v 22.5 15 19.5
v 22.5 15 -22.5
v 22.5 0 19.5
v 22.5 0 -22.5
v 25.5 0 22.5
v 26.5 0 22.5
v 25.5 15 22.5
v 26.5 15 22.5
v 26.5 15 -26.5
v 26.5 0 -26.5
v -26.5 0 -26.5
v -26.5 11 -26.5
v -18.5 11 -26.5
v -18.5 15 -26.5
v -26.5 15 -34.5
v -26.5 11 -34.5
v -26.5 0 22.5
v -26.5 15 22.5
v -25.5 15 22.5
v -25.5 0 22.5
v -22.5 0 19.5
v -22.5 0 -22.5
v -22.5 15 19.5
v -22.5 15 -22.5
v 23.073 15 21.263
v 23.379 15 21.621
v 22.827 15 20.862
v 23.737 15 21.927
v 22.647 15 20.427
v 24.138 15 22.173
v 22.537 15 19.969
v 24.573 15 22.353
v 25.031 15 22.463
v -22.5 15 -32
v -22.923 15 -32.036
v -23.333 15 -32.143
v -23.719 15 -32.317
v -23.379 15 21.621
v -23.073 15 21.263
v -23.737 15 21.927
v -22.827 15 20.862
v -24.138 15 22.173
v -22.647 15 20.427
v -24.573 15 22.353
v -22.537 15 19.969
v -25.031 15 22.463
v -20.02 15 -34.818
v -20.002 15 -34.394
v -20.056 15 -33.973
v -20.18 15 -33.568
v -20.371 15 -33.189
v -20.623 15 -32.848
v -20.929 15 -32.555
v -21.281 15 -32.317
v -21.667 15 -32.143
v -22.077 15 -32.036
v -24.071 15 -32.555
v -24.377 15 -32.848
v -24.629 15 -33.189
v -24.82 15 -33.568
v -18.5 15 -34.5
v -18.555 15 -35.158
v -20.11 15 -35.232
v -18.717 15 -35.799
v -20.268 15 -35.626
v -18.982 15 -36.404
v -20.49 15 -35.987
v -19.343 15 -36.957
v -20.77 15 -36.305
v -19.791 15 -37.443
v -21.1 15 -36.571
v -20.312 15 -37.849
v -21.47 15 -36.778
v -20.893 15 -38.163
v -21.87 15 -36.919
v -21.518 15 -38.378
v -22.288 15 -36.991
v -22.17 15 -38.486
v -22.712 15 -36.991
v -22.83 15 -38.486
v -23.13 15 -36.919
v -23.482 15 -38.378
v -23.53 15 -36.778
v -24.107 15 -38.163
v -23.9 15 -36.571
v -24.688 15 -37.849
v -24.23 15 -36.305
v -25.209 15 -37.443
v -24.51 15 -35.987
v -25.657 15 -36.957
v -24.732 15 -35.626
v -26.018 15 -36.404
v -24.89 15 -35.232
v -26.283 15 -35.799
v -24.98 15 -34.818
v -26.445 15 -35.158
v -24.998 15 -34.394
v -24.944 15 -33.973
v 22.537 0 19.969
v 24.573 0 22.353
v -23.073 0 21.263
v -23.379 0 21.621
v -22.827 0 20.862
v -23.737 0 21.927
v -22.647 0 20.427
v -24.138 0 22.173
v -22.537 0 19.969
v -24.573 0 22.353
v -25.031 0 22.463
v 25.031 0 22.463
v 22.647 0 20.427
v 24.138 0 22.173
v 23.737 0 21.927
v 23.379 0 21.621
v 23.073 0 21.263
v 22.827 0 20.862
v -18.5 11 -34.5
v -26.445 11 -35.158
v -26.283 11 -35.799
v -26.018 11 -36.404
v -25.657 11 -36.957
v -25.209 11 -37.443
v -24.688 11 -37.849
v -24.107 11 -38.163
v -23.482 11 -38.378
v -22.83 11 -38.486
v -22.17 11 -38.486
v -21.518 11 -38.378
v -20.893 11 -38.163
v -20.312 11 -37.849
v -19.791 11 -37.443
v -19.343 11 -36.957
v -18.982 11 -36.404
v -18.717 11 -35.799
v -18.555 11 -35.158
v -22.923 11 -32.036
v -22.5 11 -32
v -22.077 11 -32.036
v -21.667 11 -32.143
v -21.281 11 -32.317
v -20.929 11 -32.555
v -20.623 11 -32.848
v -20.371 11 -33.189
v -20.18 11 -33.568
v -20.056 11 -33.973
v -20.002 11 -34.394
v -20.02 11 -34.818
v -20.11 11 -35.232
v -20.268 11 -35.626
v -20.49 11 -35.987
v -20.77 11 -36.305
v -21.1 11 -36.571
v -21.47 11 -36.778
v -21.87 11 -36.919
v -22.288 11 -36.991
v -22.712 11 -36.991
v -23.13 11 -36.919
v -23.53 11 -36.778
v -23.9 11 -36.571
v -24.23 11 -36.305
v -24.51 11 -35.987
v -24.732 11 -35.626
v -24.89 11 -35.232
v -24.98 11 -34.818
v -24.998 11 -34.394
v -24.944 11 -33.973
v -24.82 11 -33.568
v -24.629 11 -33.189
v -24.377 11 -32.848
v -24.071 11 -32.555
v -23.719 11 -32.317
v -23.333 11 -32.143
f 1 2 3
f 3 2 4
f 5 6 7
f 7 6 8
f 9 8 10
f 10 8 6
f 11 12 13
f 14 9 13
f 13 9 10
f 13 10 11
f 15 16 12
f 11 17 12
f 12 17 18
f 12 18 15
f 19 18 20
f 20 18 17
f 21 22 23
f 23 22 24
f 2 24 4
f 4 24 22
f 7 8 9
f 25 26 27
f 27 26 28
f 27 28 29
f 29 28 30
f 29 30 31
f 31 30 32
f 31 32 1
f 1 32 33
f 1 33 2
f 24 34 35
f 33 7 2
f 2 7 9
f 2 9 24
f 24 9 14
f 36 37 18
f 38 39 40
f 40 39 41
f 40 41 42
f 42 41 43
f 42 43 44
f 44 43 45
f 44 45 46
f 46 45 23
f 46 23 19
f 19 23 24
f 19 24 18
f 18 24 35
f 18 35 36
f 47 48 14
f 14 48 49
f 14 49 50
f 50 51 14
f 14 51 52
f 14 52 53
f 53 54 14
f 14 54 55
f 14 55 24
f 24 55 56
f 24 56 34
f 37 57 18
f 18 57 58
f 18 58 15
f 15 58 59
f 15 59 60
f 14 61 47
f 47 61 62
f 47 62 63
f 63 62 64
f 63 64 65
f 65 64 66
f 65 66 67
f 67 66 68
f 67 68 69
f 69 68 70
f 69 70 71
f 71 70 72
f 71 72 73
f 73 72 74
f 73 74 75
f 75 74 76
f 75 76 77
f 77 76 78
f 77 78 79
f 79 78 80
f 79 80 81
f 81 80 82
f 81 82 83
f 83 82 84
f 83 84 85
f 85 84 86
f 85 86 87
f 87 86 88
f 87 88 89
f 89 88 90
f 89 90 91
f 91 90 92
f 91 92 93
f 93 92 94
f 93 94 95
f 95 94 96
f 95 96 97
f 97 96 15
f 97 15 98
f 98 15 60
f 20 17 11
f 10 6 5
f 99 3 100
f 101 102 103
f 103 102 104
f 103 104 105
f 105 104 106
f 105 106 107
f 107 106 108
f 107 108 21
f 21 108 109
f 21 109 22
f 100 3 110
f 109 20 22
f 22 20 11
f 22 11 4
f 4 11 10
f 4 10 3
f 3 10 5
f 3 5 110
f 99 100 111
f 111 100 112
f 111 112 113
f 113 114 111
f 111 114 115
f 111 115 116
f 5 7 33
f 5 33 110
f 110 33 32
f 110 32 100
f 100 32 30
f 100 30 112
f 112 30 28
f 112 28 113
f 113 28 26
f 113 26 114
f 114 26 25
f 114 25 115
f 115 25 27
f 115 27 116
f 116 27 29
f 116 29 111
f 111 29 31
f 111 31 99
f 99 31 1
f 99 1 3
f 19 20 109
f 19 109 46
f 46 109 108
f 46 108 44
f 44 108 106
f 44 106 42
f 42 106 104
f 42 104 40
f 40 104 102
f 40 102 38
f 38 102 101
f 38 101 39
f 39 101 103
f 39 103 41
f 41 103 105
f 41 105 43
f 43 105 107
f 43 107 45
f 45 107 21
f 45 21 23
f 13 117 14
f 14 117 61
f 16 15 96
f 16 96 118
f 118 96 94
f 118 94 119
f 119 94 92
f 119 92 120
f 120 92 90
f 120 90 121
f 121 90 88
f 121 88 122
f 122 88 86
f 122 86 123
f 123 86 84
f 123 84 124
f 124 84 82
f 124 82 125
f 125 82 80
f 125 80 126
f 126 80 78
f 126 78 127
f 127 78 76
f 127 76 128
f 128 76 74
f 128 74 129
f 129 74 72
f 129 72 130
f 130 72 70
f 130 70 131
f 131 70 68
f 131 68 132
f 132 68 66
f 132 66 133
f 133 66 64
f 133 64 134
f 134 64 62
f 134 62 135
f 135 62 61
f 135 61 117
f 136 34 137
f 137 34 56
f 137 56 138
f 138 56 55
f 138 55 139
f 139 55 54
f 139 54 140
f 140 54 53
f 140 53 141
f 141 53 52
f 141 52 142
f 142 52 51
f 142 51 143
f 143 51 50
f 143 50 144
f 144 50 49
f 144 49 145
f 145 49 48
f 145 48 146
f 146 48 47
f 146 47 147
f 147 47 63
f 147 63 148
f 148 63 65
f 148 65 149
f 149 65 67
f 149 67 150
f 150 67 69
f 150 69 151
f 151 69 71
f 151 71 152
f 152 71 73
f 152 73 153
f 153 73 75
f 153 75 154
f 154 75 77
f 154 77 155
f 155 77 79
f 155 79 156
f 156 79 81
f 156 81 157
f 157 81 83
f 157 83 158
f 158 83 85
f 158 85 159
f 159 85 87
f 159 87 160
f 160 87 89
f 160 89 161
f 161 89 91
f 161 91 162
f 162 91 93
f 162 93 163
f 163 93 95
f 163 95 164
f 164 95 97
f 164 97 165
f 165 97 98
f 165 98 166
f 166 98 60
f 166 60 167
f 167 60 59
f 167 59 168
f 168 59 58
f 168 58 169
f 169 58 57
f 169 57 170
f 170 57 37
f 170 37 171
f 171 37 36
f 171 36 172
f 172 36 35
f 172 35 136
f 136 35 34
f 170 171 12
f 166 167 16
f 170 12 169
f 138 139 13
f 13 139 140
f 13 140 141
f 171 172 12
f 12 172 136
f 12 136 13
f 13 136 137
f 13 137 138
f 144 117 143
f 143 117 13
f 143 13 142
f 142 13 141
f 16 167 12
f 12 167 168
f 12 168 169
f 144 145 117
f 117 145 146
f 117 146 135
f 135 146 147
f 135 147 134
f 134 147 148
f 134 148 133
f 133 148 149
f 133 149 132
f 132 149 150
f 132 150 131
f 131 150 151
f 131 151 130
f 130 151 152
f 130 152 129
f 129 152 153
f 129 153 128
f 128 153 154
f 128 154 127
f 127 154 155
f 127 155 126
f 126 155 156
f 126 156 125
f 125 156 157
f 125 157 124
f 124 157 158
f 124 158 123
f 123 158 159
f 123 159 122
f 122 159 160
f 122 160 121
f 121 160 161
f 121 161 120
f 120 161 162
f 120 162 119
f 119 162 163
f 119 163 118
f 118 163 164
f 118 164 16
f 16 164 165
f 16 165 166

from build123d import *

# Parameters (mm, degrees)
BOSS_EXTRUDE1_DEPTH = 15
FILLET1_R           = 3
SKETCH2_R           = 2.5
BOSS_EXTRUDE2_DEPTH = 4


with BuildPart() as part:
    # Sketch1 → Boss-Extrude1 (new body)
    with BuildSketch(Plane(origin=(0, 0, 0), x_dir=(1, 0, 0), z_dir=(0, 1, 0))):
        Polygon((-26.5, 26.5), (-26.5, -22.5), (-22.5, -22.5), (-22.5, 22.5), (22.5, 22.5), (22.5, -22.5), (26.5, -22.5), (26.5, 26.5), align=None)
    extrude(amount=BOSS_EXTRUDE1_DEPTH)

    # Fillet1
    fillet1_edges = [part.edges().sort_by_distance(p)[0] for p in [
        (22.5, 7.5, 22.5),
        (-22.5, 7.5, 22.5),
    ]]
    fillet(fillet1_edges, radius=FILLET1_R)

    # Sketch2 → Boss-Extrude2 (add)
    with BuildSketch(Plane(origin=(0, 15, 0), x_dir=(1, 0, 0), z_dir=(0, 1, 0))):
        with BuildLine():
            ThreePointArc((-18.5, 34.5), (-22.5, 38.5), (-26.5, 34.5))
            Line((-26.5, 34.5), (-26.5, 26.5))
            Line((-26.5, 26.5), (-18.5, 26.5))
            Line((-18.5, 26.5), (-18.5, 34.5))
        make_face()
        with Locations((-22.5, 34.5)):
            Circle(SKETCH2_R, mode=Mode.SUBTRACT)
    extrude(amount=-BOSS_EXTRUDE2_DEPTH)


solid = part.part
